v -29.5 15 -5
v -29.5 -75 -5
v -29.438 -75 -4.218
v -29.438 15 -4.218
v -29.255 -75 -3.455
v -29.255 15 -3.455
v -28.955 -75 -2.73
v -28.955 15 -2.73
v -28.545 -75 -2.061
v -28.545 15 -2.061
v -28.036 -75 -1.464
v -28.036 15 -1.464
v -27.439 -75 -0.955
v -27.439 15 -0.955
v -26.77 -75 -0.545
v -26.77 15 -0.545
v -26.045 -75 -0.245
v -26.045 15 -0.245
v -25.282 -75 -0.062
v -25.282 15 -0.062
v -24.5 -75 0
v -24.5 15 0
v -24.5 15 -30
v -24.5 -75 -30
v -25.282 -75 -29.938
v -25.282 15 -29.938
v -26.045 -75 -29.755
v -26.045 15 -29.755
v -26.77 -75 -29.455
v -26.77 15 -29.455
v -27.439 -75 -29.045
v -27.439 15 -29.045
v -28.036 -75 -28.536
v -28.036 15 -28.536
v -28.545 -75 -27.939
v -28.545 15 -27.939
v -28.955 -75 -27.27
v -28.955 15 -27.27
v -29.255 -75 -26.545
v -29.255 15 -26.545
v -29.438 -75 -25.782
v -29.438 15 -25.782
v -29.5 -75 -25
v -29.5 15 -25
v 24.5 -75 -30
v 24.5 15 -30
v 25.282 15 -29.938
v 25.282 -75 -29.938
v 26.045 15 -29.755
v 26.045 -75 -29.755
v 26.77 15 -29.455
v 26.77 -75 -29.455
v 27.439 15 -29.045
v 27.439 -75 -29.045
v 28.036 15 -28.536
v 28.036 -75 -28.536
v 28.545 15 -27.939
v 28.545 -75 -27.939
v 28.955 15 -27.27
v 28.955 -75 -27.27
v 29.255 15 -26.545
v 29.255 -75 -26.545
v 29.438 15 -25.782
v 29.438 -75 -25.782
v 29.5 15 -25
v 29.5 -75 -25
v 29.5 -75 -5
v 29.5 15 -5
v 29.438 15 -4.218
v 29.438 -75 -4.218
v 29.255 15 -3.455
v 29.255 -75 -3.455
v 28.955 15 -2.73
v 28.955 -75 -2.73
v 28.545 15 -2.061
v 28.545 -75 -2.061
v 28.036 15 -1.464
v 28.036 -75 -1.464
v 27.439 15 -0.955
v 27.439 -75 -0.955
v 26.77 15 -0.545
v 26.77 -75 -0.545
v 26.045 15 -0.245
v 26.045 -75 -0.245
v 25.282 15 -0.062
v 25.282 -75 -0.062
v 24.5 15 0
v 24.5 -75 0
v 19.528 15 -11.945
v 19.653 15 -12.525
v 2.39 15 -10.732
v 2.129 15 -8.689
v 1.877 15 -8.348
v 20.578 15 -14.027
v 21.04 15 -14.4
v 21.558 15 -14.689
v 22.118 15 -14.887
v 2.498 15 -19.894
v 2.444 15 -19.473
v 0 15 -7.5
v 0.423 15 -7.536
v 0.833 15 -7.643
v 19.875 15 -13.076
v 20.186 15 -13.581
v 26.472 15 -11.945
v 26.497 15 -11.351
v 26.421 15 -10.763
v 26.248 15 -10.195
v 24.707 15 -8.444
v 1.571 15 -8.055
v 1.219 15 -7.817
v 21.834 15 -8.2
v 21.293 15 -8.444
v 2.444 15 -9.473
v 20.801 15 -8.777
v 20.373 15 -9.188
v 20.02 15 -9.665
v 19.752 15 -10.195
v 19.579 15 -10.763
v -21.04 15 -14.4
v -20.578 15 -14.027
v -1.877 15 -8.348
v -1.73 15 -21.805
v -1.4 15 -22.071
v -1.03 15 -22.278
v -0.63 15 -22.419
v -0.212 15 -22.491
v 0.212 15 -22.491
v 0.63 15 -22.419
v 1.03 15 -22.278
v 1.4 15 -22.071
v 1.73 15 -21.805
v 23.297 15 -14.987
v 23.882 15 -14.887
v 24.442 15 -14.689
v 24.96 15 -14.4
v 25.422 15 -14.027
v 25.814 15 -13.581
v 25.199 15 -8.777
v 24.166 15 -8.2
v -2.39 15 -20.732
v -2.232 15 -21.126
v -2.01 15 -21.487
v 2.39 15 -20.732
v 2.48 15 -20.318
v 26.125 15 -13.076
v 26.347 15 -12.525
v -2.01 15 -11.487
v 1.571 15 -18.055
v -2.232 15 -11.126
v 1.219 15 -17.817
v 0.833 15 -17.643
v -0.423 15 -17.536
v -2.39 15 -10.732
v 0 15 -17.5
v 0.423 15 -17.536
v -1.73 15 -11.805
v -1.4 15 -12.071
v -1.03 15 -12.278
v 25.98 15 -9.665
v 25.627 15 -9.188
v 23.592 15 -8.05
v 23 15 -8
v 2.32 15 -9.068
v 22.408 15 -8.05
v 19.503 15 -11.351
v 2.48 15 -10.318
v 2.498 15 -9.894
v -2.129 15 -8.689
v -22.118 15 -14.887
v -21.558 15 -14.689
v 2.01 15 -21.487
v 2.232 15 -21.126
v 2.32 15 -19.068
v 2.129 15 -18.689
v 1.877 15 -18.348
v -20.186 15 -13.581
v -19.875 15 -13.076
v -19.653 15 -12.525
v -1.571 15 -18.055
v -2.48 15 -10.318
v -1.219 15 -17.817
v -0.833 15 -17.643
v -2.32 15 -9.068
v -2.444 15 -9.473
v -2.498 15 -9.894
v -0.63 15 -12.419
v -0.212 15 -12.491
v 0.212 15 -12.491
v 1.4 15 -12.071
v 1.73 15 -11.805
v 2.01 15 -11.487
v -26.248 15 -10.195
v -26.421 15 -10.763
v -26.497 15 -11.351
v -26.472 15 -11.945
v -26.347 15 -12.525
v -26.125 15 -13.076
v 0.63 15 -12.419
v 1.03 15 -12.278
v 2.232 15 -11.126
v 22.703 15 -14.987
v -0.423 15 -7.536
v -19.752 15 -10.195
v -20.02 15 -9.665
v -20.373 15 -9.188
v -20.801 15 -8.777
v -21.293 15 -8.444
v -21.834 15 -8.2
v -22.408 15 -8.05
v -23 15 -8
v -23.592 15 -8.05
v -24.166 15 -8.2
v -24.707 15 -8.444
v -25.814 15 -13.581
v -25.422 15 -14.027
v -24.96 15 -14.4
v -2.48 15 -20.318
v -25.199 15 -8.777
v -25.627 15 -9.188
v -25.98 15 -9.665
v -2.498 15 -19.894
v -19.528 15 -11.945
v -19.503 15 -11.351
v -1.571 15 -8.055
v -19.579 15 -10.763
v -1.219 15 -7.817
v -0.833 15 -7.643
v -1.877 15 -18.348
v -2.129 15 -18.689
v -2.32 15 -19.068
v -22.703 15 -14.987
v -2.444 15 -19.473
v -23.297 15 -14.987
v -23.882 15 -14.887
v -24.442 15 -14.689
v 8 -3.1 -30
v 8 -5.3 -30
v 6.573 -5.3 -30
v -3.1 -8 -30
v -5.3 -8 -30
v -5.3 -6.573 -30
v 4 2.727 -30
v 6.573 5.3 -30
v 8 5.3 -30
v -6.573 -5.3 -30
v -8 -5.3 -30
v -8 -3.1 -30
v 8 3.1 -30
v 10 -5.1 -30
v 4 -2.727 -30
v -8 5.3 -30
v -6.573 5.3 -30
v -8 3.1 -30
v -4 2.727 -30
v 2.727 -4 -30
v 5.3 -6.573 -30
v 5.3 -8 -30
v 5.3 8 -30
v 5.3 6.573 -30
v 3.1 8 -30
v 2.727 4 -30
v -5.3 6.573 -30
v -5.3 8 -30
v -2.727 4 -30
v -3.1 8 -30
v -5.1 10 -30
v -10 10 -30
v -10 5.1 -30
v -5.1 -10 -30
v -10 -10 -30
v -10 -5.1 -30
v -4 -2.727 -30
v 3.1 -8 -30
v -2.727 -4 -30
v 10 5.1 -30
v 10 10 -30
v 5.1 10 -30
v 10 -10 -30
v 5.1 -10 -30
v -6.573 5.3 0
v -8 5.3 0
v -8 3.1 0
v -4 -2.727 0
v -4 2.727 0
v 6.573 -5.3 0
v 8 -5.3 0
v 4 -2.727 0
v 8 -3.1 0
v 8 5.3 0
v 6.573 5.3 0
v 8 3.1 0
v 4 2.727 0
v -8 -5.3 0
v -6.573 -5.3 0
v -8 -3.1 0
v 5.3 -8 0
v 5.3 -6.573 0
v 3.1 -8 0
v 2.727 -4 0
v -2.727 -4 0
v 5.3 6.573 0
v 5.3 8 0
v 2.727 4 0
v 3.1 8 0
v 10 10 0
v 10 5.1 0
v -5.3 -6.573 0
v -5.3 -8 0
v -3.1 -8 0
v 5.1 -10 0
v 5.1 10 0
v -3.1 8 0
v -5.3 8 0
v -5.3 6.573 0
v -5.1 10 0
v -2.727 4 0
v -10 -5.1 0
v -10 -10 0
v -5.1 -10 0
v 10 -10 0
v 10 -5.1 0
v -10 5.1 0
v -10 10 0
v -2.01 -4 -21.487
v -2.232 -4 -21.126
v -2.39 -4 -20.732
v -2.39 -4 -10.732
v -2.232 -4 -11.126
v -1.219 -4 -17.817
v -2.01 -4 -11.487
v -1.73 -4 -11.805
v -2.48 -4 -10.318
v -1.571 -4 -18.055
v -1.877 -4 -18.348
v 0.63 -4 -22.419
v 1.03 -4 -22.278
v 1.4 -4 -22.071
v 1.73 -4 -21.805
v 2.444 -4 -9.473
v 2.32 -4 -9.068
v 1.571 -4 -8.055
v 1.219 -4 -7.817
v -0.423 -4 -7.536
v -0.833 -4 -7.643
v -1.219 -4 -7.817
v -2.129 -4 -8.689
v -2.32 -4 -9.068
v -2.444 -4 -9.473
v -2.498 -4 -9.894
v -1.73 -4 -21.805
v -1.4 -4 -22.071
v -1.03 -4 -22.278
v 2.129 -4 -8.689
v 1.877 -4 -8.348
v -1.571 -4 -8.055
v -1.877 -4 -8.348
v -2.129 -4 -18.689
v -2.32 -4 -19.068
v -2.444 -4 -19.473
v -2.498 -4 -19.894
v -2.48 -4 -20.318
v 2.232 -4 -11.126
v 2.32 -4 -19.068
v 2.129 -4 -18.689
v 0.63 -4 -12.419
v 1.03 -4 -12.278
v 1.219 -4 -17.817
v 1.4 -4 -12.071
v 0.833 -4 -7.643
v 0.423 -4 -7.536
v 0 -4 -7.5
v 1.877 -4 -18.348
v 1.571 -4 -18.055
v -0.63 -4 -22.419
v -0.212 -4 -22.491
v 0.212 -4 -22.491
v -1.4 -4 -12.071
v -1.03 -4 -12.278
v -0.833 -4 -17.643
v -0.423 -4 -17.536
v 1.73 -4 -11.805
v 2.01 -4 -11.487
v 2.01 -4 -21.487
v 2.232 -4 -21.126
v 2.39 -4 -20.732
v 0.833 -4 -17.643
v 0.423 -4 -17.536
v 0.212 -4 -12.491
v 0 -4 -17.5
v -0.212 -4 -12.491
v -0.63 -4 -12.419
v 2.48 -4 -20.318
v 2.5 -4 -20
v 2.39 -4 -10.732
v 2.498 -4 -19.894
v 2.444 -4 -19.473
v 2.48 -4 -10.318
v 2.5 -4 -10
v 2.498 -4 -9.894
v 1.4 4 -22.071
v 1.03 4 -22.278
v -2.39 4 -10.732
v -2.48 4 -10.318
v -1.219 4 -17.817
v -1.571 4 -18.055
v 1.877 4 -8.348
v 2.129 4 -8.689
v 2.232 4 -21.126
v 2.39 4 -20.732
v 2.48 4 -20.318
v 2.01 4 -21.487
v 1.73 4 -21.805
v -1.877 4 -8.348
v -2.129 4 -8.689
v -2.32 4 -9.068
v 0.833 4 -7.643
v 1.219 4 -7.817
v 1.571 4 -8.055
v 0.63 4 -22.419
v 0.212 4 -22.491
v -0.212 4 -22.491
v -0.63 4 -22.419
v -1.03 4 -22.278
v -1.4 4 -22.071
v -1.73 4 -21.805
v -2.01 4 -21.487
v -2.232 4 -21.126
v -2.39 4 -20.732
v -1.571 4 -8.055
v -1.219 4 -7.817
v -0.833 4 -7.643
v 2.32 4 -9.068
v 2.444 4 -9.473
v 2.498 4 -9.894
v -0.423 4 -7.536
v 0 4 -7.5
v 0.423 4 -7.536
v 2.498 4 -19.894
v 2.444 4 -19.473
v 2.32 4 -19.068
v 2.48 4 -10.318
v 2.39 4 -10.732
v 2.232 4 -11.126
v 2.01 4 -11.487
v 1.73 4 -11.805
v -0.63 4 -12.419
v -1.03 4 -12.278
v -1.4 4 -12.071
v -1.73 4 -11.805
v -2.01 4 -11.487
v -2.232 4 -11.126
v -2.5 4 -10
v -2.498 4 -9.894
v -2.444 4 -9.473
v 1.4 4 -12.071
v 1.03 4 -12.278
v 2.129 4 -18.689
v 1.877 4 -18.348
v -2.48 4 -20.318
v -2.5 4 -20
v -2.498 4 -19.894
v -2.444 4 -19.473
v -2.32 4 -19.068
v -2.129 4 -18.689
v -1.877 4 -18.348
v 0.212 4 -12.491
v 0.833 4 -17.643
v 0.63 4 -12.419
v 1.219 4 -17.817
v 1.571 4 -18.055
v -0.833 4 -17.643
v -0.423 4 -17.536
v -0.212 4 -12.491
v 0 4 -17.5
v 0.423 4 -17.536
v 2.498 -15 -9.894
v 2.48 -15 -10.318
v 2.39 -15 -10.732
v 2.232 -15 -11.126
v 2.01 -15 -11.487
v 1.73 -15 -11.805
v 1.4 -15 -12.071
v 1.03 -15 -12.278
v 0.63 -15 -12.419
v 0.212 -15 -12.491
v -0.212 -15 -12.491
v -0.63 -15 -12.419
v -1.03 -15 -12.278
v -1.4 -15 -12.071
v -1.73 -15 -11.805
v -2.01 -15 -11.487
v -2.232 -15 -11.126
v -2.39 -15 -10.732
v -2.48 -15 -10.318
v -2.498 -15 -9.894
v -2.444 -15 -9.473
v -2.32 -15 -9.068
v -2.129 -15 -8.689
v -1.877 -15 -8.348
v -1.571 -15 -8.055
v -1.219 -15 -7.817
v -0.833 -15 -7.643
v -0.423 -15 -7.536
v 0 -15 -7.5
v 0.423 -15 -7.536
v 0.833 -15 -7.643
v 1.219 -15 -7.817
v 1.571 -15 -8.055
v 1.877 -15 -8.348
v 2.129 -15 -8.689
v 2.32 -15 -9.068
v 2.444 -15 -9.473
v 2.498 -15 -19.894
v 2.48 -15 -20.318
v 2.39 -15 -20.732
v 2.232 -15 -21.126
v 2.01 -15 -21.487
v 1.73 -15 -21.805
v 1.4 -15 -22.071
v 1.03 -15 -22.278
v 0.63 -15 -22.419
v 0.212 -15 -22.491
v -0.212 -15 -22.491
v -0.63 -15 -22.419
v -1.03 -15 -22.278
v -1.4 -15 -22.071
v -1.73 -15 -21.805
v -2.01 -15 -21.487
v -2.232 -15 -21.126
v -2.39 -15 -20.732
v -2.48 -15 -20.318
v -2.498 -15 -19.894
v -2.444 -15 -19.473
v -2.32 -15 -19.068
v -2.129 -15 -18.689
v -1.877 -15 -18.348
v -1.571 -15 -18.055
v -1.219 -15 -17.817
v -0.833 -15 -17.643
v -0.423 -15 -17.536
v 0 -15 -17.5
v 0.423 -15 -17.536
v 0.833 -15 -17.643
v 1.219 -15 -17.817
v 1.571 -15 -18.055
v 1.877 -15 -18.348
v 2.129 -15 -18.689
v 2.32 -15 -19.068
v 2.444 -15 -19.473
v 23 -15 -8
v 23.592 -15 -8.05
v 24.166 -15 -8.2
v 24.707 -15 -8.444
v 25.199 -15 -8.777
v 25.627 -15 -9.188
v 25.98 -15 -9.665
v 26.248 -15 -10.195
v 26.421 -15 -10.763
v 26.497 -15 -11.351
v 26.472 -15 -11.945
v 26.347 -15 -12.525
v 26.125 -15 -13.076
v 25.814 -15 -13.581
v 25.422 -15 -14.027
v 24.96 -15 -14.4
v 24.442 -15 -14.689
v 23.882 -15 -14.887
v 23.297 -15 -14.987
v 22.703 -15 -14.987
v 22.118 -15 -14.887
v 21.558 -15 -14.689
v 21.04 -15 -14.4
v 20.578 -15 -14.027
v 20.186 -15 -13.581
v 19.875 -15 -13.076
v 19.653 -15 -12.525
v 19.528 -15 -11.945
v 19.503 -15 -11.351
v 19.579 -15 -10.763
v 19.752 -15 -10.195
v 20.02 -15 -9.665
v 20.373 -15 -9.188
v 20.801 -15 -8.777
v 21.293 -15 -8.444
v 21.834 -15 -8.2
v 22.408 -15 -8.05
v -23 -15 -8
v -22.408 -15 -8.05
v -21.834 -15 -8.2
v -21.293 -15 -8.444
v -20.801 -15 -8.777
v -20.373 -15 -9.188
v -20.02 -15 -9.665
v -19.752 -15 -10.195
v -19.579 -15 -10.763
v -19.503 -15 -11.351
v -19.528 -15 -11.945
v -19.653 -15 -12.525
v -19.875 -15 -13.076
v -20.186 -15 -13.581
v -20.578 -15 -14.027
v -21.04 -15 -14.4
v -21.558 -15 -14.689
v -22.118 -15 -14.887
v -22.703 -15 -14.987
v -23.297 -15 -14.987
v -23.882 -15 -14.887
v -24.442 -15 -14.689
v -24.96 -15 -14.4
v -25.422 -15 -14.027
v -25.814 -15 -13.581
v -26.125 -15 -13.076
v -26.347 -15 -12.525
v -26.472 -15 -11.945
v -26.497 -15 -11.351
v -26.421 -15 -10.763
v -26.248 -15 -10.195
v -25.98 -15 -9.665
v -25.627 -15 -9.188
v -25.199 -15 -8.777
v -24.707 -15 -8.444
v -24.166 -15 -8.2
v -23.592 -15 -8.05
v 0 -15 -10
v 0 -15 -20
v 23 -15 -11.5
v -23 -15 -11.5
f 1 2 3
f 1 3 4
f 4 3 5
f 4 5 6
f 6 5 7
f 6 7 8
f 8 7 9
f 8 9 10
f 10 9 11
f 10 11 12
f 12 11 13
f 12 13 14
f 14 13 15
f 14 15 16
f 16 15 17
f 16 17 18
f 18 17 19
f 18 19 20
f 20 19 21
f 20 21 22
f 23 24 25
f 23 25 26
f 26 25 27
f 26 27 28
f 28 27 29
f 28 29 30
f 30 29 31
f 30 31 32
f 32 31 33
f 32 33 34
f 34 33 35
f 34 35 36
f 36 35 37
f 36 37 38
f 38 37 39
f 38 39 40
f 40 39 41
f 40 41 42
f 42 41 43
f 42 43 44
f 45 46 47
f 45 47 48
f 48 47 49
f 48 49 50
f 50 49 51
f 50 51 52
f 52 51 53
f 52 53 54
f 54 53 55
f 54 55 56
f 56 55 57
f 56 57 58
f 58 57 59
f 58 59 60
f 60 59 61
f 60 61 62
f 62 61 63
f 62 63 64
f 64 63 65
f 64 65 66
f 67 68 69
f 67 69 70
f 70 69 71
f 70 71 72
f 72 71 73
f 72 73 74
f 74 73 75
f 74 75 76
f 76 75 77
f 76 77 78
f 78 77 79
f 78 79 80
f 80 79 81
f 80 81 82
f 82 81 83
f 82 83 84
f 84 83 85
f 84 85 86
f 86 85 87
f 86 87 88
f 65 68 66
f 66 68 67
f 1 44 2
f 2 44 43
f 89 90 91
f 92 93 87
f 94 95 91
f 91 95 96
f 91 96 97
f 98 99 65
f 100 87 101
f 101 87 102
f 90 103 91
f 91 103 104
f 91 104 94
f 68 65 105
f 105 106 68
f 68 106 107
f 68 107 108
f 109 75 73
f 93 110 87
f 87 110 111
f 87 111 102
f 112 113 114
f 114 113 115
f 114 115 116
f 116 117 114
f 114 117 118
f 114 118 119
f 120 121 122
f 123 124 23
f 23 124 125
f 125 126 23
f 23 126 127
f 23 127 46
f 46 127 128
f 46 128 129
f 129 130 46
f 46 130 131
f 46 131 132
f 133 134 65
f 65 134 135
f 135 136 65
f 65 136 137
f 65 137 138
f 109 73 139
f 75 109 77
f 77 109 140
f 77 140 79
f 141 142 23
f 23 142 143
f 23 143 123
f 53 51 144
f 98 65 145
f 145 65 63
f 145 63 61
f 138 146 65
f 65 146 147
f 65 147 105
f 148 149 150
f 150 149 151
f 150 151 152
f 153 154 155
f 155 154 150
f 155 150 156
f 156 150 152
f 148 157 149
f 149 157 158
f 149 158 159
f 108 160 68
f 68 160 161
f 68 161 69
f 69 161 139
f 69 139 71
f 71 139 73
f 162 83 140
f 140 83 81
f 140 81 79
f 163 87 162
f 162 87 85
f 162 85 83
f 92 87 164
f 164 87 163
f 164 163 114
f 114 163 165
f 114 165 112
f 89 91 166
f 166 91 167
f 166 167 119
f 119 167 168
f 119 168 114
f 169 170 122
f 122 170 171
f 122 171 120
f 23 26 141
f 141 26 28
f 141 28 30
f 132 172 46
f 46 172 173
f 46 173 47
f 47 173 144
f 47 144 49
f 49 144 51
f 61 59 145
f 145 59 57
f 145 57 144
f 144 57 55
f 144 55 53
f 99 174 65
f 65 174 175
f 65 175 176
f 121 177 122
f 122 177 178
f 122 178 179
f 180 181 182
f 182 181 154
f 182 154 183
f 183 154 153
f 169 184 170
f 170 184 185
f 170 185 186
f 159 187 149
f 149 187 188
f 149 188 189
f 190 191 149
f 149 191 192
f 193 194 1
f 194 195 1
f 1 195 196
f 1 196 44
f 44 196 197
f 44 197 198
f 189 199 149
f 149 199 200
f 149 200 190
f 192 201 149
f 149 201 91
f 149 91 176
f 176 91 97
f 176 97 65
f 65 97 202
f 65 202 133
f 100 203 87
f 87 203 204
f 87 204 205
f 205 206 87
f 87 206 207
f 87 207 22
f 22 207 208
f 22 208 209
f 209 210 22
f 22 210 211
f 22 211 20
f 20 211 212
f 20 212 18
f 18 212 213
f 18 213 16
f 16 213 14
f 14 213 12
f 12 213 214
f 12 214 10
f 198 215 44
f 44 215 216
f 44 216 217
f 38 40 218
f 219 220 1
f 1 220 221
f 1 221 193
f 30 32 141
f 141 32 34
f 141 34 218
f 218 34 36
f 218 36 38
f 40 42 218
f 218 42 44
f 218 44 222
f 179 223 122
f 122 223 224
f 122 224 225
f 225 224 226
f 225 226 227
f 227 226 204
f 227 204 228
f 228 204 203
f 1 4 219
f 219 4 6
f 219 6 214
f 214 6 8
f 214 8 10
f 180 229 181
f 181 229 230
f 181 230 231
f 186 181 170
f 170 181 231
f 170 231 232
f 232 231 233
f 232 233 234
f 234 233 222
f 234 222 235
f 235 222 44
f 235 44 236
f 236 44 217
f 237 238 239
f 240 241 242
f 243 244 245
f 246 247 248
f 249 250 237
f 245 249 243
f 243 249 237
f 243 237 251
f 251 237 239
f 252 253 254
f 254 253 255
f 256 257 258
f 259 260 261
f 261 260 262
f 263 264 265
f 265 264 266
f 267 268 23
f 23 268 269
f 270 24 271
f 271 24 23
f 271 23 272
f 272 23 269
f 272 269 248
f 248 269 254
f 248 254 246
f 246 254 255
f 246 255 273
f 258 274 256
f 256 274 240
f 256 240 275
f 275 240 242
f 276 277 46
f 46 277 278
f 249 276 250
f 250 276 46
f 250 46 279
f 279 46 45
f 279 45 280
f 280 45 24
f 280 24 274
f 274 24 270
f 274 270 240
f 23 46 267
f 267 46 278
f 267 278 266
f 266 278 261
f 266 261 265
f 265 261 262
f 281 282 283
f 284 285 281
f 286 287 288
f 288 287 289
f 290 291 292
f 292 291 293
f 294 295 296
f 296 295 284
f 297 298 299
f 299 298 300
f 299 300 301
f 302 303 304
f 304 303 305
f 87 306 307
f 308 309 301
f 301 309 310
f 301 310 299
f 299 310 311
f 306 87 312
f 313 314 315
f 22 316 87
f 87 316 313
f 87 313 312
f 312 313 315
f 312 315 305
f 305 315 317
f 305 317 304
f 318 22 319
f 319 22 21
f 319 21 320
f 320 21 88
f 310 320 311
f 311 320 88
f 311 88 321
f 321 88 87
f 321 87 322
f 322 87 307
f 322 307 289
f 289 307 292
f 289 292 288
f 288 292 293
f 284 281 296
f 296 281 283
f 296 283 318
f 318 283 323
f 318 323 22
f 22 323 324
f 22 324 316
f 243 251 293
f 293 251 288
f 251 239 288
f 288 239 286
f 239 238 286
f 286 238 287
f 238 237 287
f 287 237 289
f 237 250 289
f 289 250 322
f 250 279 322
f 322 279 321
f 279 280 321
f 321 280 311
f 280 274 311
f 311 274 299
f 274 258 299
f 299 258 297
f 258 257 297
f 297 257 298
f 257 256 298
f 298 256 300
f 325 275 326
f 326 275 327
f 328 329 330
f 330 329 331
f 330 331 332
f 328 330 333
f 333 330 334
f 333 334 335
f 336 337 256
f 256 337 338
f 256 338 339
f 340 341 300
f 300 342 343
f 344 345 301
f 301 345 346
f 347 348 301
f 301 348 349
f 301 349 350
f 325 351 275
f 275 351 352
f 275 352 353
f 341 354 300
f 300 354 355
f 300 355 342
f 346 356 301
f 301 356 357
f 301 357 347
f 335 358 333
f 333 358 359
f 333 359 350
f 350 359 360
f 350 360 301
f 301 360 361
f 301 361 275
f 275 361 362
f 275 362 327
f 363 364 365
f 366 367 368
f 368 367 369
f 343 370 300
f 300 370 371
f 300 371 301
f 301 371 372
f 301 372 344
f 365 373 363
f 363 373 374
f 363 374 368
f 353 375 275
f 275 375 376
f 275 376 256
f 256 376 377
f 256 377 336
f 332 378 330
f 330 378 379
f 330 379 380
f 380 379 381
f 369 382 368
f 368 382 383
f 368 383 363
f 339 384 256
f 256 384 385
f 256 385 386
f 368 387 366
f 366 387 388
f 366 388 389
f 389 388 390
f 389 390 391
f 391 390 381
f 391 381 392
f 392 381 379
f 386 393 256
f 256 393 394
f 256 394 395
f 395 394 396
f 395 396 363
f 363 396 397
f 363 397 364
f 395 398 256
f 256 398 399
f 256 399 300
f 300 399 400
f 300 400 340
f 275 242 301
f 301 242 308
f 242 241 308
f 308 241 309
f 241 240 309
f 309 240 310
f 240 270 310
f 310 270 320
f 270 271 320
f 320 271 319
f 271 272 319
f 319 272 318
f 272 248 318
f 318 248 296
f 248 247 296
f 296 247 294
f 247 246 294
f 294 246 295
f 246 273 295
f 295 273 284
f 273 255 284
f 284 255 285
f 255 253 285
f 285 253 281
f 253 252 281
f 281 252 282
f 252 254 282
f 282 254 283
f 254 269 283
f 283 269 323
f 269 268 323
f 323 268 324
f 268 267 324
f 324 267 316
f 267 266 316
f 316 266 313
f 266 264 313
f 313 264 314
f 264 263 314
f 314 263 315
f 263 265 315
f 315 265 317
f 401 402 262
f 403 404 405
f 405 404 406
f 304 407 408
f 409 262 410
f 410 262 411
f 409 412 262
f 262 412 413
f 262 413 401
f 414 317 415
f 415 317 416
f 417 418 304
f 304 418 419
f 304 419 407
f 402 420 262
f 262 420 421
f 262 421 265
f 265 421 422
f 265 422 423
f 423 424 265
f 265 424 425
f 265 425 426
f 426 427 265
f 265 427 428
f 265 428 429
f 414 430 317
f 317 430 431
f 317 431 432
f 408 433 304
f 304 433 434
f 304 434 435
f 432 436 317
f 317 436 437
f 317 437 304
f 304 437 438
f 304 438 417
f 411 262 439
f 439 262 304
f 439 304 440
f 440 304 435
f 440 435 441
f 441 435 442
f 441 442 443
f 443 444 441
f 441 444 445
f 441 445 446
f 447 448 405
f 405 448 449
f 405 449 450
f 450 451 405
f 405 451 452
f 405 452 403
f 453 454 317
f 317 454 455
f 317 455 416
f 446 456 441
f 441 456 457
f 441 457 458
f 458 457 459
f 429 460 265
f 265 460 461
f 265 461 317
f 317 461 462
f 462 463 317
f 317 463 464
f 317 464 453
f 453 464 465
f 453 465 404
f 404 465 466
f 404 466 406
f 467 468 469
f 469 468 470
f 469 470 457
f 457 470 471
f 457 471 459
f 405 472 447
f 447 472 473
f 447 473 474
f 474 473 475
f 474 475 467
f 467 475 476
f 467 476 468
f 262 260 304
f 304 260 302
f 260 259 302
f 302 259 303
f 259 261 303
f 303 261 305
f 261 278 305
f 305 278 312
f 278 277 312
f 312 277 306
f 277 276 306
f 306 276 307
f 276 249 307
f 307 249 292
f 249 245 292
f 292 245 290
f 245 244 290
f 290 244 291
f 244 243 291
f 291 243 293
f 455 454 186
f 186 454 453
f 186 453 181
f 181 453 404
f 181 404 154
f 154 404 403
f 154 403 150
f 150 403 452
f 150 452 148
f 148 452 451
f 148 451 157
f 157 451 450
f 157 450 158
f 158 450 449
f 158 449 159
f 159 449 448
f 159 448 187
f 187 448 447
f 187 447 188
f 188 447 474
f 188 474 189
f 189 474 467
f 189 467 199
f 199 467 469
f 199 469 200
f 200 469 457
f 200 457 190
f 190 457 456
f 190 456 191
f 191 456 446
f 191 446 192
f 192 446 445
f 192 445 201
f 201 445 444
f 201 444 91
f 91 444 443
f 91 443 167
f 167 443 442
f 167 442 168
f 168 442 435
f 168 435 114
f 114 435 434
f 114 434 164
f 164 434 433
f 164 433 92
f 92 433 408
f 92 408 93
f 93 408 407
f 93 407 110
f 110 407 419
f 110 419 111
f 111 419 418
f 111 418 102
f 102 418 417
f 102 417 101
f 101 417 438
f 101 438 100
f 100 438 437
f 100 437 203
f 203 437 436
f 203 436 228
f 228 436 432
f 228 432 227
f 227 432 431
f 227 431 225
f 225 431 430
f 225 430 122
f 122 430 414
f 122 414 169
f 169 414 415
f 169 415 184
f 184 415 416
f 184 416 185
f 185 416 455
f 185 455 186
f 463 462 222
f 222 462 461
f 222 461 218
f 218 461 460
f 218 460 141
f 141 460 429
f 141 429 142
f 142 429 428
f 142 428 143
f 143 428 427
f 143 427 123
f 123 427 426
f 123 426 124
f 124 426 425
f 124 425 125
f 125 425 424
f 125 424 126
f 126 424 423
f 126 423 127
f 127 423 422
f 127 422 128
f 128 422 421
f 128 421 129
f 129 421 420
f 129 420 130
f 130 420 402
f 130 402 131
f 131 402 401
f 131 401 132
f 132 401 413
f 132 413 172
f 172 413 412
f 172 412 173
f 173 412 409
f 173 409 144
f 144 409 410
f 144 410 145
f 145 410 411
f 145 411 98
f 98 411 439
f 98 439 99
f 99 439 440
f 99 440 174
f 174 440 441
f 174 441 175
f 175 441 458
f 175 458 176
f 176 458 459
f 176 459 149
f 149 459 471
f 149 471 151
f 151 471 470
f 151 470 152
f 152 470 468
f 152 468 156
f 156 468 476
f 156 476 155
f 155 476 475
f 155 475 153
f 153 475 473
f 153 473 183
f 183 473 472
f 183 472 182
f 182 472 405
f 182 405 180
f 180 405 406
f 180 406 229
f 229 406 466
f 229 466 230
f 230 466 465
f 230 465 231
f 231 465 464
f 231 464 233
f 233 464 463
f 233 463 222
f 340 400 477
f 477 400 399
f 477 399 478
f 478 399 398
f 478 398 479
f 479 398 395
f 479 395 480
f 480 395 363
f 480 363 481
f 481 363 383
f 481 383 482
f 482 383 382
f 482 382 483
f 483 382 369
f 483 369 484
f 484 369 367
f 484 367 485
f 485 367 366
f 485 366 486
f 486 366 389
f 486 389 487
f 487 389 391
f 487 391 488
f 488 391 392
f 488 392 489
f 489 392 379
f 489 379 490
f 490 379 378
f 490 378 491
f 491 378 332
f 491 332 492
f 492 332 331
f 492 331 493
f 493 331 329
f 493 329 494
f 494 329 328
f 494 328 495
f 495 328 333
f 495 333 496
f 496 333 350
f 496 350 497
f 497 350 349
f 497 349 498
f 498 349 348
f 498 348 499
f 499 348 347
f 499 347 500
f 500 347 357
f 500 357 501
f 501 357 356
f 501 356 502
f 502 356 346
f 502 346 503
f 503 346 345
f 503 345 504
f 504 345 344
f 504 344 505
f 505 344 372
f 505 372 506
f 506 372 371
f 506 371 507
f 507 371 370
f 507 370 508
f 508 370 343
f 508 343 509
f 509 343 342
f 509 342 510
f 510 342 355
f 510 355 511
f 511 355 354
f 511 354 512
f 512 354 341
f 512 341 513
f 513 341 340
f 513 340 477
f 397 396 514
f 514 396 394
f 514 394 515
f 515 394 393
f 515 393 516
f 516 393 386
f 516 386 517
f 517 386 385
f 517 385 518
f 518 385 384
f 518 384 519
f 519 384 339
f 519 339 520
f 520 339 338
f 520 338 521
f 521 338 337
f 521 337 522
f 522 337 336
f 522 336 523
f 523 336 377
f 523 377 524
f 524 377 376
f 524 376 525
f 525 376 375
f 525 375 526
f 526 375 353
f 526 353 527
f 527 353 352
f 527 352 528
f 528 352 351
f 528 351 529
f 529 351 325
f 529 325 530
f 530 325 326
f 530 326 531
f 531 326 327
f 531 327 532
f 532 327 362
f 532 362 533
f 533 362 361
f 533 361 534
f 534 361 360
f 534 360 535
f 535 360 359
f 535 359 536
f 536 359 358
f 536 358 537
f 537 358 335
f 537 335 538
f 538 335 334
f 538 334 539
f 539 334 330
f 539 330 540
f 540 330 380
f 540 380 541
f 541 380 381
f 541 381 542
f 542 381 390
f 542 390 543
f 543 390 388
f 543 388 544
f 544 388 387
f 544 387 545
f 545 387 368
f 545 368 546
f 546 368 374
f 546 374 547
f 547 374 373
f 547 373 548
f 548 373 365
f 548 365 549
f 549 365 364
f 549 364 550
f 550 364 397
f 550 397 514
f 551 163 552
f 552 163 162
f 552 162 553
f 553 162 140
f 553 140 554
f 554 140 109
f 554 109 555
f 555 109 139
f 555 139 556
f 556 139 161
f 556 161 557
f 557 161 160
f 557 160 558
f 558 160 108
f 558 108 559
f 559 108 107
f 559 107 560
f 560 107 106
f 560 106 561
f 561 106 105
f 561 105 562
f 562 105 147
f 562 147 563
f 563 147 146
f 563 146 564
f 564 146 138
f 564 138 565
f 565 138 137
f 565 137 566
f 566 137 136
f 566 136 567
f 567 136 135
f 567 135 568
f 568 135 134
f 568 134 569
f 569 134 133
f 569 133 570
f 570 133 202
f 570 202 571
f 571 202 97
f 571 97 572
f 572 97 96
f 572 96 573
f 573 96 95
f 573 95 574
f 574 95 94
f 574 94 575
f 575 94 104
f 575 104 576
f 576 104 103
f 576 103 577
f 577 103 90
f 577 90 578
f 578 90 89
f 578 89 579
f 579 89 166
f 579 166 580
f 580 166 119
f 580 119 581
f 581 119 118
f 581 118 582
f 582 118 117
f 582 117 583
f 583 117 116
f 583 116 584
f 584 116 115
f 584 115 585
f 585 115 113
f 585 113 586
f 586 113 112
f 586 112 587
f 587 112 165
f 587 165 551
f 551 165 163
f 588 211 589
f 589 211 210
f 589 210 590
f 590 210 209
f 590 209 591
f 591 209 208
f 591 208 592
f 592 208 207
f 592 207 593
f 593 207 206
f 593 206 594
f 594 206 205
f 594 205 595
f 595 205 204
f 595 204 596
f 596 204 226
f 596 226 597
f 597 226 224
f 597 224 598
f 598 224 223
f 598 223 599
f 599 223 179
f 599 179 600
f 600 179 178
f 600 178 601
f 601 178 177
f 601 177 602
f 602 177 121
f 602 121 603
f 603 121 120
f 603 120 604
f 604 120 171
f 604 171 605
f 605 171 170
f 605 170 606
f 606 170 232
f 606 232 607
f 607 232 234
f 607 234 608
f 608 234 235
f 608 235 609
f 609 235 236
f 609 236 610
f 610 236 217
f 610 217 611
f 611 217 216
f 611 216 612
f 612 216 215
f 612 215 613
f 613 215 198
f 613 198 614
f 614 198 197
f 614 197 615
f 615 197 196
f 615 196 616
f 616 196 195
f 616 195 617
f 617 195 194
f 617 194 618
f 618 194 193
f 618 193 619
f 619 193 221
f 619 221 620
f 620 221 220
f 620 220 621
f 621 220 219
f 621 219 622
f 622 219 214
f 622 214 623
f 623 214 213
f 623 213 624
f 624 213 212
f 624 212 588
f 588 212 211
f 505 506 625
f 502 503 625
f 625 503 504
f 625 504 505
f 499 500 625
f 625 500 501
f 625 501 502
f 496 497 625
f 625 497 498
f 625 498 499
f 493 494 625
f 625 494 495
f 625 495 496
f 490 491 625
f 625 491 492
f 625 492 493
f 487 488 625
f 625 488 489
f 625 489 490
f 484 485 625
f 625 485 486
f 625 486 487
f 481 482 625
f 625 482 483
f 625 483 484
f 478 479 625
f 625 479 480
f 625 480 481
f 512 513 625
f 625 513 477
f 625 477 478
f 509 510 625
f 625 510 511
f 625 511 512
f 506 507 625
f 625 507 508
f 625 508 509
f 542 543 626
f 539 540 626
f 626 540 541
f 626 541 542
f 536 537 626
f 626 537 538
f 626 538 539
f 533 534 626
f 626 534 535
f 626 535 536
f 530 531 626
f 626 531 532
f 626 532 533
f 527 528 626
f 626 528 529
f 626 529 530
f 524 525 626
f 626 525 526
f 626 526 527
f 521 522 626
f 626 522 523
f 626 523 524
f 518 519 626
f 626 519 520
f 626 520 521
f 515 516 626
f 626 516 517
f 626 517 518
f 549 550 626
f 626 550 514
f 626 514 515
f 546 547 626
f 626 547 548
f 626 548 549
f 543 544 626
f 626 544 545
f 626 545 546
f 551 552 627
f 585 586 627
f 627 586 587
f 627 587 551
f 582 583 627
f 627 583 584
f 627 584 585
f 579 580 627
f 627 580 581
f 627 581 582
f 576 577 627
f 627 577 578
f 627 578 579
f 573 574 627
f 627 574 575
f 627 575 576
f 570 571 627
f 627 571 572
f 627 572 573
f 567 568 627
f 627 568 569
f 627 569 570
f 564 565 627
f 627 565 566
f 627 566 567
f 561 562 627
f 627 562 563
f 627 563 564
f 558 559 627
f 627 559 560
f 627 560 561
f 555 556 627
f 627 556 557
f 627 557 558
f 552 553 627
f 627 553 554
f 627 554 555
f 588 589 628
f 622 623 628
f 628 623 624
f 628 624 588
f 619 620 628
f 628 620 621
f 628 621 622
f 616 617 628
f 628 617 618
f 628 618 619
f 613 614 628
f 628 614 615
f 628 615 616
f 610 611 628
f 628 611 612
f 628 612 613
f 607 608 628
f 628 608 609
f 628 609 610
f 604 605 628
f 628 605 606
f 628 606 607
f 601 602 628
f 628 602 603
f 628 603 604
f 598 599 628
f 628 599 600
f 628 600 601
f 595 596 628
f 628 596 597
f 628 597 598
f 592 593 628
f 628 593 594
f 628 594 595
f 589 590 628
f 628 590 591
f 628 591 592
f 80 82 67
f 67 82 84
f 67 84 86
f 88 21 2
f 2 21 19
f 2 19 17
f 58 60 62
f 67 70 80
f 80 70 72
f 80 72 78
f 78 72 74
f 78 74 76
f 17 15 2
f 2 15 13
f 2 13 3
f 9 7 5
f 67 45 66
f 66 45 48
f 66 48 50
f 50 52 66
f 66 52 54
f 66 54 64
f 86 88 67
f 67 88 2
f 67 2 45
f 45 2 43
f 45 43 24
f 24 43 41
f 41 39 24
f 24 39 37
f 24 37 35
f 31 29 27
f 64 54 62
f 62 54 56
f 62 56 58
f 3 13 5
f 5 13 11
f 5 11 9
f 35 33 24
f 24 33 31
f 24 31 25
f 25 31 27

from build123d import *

# Parameters (mm, degrees)
SKETCH1_W           = 59
SKETCH1_H           = 30
BOSS_EXTRUDE1_DEPTH = 30
SKETCH2_R           = 2.5
SKETCH2_R_2         = 3.5
CUT_EXTRUDE1_DEPTH  = 52.674461778
SKETCH3_W           = 59
SKETCH3_H           = 60
BOSS_EXTRUDE2_DEPTH = 30
FILLET1_R           = 5
FILLET2_R           = 5
FILLET3_R           = 5
FILLET4_R           = 5


with BuildPart() as part:
    # Sketch1 → Boss-Extrude1 (new body)
    with BuildSketch(Plane.XY):
        Rectangle(SKETCH1_W, SKETCH1_H)
        Polygon((4, 2.727207794), (6.572792206, 5.3), (8, 5.3), (8, 3.1), (10, 5.1), (10, 10), (5.1, 10), (3.1, 8), (5.3, 8), (5.3, 6.572792206), (2.727207794, 4), (-2.727207794, 4), (-5.3, 6.572792206), (-5.3, 8), (-3.1, 8), (-5.1, 10), (-10, 10), (-10, 5.1), (-8, 3.1), (-8, 5.3), (-6.572792206, 5.3), (-4, 2.727207794), (-4, -2.727207794), (-6.572792206, -5.3), (-8, -5.3), (-8, -3.1), (-10, -5.1), (-10, -10), (-5.1, -10), (-3.1, -8), (-5.3, -8), (-5.3, -6.572792206), (-2.727207794, -4), (2.727207794, -4), (5.3, -6.572792206), (5.3, -8), (3.1, -8), (5.1, -10), (10, -10), (10, -5.1), (8, -3.1), (8, -5.3), (6.572792206, -5.3), (4, -2.727207794), align=None, mode=Mode.SUBTRACT)
    extrude(amount=-BOSS_EXTRUDE1_DEPTH)

    # Sketch2 → Cut-Extrude1 (cut, through all)
    with BuildSketch(Plane(origin=(0, 15, 0), x_dir=(1, 0, 0), z_dir=(0, 1, 0))):
        with Locations(Location((0, 10, 0), (0, 0, 270))):
            Circle(SKETCH2_R)
        with Locations(Location((0, 20, 0), (0, 0, 270))):
            Circle(SKETCH2_R)
        with Locations(Location((23, 11.5, 0), (0, 0, 270))):
            Circle(SKETCH2_R_2)
        with Locations(Location((-23, 11.5, 0), (0, 0, 270))):
            Circle(SKETCH2_R_2)
    extrude(amount=-CUT_EXTRUDE1_DEPTH, mode=Mode.SUBTRACT)

    # Sketch3 → Boss-Extrude2 (add)
    with BuildSketch(Plane.XY):
        with Locations((0, -45)):
            Rectangle(SKETCH3_W, SKETCH3_H)
    extrude(amount=-BOSS_EXTRUDE2_DEPTH)

    # Fillet1
    fillet1_edges = [part.edges().sort_by_distance(p)[0] for p in [
        (29.5, -30, 0),
    ]]
    fillet(fillet1_edges, radius=FILLET1_R)

    # Fillet2
    fillet2_edges = [part.edges().sort_by_distance(p)[0] for p in [
        (29.5, -30, -30),
    ]]
    fillet(fillet2_edges, radius=FILLET2_R)

    # Fillet3
    fillet3_edges = [part.edges().sort_by_distance(p)[0] for p in [
        (-29.5, -30, -30),
    ]]
    fillet(fillet3_edges, radius=FILLET3_R)

    # Fillet4
    fillet4_edges = [part.edges().sort_by_distance(p)[0] for p in [
        (-29.5, -30, 0),
    ]]
    fillet(fillet4_edges, radius=FILLET4_R)


solid = part.part
